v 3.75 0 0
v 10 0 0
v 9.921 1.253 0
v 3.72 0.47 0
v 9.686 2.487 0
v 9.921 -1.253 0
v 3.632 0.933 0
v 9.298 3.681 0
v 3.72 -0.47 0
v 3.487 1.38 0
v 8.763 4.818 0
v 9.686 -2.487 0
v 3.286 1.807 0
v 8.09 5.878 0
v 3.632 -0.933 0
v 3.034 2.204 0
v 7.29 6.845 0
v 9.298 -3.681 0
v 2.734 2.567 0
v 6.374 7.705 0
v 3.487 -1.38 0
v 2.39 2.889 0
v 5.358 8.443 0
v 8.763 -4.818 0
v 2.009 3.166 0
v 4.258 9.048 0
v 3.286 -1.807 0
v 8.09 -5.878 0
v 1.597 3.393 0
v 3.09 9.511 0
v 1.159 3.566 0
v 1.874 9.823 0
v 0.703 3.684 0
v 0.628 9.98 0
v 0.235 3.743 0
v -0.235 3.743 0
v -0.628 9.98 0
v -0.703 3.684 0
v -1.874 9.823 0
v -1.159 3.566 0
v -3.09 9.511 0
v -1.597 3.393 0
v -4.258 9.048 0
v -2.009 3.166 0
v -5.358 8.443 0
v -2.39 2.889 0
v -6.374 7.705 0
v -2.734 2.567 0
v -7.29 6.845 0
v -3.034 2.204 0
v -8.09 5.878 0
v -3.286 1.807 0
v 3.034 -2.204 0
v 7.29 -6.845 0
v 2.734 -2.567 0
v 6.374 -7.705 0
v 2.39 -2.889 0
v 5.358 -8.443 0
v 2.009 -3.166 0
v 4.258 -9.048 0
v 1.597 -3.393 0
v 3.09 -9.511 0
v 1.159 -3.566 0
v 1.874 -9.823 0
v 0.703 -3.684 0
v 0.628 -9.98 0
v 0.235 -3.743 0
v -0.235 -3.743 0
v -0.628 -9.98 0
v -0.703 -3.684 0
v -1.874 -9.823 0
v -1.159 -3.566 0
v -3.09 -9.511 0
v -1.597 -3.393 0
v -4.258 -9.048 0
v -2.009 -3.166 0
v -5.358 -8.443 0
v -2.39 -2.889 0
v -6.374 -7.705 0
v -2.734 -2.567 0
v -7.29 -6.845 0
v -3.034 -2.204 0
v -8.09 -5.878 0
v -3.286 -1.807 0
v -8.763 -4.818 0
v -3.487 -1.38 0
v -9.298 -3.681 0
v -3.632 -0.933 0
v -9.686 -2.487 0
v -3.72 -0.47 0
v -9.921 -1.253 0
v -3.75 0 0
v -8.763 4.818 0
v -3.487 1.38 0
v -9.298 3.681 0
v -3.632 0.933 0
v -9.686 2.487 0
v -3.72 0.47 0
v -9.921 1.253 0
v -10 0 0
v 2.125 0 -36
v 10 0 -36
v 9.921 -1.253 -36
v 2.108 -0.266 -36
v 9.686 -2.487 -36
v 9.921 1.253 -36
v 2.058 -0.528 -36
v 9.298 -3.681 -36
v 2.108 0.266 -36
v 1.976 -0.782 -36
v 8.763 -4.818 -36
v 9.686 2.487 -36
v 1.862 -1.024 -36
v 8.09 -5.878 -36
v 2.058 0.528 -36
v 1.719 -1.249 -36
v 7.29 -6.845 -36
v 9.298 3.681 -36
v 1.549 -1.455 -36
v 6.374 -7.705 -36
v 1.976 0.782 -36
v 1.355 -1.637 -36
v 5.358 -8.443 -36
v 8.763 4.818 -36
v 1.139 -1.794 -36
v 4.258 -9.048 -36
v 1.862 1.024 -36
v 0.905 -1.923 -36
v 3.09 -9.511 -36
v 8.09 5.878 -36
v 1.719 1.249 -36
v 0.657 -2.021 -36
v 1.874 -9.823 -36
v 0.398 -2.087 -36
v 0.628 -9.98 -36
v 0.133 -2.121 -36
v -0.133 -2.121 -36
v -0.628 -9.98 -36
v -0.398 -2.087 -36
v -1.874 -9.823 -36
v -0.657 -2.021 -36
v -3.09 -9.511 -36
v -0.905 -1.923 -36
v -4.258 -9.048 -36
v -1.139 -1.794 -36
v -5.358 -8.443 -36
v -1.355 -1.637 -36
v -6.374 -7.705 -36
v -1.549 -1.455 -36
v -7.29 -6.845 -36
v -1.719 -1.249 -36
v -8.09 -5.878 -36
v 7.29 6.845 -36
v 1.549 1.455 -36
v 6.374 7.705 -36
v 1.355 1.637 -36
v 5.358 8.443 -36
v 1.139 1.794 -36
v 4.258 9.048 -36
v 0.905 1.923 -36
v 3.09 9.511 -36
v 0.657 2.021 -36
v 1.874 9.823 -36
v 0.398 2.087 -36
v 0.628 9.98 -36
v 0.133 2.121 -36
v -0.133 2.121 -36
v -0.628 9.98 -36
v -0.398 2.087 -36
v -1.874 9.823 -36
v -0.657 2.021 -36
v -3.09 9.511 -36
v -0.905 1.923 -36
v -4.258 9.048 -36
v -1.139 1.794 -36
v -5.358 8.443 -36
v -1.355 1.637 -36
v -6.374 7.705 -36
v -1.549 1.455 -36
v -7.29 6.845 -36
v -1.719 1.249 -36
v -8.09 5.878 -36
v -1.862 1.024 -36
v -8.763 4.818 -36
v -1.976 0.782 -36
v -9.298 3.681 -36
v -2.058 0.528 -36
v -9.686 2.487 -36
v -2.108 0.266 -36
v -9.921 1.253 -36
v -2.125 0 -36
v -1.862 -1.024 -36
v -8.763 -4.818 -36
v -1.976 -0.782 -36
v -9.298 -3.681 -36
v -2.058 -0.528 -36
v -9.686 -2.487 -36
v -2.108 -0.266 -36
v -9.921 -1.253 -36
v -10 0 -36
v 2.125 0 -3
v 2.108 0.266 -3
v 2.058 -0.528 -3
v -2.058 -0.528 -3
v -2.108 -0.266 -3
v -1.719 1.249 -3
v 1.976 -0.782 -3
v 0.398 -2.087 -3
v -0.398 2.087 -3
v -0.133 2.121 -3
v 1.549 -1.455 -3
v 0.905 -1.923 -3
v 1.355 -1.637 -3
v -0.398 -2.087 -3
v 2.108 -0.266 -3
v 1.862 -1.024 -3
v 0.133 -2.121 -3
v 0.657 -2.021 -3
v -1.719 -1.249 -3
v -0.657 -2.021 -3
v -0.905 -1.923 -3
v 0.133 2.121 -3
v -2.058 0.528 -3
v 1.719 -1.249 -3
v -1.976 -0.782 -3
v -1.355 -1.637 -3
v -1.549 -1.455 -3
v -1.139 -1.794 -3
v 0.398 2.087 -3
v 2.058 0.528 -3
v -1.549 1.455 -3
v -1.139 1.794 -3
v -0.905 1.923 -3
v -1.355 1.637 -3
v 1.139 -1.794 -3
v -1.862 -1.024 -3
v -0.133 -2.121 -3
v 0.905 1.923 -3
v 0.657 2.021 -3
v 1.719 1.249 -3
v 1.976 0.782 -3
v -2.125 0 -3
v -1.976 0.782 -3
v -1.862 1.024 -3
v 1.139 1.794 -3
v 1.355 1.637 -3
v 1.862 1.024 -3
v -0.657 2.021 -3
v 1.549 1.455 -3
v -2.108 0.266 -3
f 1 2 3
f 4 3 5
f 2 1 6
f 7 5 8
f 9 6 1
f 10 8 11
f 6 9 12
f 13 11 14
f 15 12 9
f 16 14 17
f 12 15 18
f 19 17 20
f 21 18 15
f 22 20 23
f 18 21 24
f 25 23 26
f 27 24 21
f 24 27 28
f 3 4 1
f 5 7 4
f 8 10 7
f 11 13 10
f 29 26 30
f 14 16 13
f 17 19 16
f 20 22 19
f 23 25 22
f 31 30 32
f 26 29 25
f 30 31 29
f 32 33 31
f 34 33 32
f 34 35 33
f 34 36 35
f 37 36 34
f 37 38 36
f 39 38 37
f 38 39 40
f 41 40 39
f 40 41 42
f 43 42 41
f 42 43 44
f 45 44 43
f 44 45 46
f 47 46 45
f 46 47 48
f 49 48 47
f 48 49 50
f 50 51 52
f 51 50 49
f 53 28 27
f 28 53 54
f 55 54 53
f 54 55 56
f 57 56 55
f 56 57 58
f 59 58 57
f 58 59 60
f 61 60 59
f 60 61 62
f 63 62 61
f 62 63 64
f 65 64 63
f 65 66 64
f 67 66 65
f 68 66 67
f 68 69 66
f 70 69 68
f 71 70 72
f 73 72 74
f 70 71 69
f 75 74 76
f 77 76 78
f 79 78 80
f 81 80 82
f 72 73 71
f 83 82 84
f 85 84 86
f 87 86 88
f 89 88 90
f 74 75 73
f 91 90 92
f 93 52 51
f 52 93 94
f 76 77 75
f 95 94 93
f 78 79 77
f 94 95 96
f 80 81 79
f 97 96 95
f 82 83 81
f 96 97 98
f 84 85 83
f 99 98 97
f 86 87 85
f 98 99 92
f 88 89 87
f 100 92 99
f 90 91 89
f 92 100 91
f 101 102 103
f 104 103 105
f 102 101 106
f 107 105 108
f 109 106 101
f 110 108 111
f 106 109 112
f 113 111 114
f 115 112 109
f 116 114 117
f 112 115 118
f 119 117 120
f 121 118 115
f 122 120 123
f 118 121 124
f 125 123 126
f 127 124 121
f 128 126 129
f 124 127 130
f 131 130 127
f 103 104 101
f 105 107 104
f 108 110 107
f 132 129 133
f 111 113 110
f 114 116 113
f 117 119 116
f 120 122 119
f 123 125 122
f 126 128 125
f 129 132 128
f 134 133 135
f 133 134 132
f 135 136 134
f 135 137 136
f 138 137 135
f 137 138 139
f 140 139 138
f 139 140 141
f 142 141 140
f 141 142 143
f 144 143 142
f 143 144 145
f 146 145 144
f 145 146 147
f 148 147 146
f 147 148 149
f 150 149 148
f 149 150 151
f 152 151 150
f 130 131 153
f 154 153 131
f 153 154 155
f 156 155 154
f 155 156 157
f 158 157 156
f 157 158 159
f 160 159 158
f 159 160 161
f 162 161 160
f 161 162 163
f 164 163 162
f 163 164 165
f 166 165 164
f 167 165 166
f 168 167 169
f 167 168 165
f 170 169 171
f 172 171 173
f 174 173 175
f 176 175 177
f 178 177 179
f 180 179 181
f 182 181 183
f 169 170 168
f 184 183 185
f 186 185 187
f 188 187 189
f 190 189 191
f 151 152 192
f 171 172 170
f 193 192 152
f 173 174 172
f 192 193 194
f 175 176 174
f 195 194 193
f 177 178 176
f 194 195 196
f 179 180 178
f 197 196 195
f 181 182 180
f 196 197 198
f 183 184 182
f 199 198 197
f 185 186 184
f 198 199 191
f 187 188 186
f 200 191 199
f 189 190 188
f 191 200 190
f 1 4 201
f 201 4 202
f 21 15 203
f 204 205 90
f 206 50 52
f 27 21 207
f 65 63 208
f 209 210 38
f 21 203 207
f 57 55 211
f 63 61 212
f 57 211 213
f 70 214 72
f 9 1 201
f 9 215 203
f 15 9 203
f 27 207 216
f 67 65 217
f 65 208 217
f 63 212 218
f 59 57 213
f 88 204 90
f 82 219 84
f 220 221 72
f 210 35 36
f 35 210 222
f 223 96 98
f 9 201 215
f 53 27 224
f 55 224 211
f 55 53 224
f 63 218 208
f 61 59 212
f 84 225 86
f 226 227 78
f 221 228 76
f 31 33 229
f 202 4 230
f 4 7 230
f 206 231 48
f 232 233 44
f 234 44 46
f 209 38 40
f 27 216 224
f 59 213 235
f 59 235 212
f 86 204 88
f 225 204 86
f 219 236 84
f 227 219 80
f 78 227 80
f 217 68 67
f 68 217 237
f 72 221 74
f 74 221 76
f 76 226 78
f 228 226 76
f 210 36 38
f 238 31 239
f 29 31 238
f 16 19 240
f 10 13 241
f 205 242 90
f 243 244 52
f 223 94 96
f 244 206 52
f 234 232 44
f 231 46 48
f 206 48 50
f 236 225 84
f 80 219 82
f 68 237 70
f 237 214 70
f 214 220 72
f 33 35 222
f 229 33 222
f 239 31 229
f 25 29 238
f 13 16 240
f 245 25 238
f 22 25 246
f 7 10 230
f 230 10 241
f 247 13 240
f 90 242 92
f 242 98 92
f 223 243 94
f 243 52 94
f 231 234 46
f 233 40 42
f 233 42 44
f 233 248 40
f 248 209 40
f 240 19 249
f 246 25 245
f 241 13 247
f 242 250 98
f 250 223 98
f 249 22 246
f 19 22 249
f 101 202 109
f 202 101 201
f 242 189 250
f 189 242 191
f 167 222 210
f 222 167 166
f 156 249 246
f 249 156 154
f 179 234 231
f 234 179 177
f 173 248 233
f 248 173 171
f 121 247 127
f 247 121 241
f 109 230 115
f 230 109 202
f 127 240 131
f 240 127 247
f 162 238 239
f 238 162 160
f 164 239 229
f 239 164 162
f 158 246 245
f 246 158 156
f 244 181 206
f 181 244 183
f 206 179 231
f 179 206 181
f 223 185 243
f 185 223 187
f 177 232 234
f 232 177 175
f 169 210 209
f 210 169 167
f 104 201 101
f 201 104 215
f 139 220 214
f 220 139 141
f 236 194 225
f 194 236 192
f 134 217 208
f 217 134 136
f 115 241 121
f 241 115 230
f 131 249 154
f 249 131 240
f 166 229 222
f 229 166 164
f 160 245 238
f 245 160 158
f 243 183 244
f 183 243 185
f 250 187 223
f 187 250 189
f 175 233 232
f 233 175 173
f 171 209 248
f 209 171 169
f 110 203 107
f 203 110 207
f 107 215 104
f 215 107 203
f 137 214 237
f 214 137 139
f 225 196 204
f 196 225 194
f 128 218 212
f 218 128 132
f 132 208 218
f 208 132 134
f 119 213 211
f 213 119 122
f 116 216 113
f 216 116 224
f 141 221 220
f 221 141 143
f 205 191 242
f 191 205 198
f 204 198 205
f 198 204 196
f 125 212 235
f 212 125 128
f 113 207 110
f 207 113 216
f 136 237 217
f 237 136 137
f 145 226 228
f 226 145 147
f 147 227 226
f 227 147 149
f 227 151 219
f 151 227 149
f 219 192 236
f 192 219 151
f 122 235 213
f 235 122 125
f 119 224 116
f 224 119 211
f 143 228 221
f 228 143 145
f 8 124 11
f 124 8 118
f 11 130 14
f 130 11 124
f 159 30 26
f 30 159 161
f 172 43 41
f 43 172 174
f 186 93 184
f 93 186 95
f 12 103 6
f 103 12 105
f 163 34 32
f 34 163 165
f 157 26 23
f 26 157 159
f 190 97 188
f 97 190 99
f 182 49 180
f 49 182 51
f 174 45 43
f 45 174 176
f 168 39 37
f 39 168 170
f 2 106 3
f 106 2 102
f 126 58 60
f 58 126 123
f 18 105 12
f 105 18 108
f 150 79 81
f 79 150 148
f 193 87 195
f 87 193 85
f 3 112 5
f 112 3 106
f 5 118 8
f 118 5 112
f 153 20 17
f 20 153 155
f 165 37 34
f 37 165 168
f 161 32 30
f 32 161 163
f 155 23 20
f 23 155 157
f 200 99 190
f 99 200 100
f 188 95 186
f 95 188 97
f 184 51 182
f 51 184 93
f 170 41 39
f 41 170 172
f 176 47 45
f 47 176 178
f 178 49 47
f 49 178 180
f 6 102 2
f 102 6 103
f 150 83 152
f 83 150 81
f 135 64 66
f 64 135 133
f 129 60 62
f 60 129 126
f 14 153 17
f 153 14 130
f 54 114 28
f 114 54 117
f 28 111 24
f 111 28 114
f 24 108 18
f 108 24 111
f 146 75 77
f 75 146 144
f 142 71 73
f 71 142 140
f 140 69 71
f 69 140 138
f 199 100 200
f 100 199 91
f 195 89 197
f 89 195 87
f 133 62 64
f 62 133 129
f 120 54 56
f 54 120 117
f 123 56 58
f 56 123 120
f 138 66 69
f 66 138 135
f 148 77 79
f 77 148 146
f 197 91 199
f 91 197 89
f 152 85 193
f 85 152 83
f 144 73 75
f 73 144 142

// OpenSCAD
$fn = 50;


difference() {
	union() {
		translate(v = [0, 0, -36.0000000000]) {
			cylinder(h = 36, r = 10.0000000000);
		}
		cylinder(h = 0, r = 16.0000000000);
	}
	union() {
		translate(v = [0, 0, 0]) {
			rotate(a = [0, 0, 0]) {
				difference() {
					union() {
						#translate(v = [0, 0, -36.0000000000]) {
							cylinder(h = 36, r = 2.0000000000);
						}
						#translate(v = [0, 0, -3]) {
							cylinder(h = 3, r1 = 2.1250000000, r2 = 3.7500000000);
						}
						#translate(v = [0, 0, -36.0000000000]) {
							cylinder(h = 36, r = 2.1250000000);
						}
						#translate(v = [0, 0, -36.0000000000]) {
							cylinder(h = 36, r = 2.0000000000);
						}
					}
					union();
				}
			}
		}
	}
}
